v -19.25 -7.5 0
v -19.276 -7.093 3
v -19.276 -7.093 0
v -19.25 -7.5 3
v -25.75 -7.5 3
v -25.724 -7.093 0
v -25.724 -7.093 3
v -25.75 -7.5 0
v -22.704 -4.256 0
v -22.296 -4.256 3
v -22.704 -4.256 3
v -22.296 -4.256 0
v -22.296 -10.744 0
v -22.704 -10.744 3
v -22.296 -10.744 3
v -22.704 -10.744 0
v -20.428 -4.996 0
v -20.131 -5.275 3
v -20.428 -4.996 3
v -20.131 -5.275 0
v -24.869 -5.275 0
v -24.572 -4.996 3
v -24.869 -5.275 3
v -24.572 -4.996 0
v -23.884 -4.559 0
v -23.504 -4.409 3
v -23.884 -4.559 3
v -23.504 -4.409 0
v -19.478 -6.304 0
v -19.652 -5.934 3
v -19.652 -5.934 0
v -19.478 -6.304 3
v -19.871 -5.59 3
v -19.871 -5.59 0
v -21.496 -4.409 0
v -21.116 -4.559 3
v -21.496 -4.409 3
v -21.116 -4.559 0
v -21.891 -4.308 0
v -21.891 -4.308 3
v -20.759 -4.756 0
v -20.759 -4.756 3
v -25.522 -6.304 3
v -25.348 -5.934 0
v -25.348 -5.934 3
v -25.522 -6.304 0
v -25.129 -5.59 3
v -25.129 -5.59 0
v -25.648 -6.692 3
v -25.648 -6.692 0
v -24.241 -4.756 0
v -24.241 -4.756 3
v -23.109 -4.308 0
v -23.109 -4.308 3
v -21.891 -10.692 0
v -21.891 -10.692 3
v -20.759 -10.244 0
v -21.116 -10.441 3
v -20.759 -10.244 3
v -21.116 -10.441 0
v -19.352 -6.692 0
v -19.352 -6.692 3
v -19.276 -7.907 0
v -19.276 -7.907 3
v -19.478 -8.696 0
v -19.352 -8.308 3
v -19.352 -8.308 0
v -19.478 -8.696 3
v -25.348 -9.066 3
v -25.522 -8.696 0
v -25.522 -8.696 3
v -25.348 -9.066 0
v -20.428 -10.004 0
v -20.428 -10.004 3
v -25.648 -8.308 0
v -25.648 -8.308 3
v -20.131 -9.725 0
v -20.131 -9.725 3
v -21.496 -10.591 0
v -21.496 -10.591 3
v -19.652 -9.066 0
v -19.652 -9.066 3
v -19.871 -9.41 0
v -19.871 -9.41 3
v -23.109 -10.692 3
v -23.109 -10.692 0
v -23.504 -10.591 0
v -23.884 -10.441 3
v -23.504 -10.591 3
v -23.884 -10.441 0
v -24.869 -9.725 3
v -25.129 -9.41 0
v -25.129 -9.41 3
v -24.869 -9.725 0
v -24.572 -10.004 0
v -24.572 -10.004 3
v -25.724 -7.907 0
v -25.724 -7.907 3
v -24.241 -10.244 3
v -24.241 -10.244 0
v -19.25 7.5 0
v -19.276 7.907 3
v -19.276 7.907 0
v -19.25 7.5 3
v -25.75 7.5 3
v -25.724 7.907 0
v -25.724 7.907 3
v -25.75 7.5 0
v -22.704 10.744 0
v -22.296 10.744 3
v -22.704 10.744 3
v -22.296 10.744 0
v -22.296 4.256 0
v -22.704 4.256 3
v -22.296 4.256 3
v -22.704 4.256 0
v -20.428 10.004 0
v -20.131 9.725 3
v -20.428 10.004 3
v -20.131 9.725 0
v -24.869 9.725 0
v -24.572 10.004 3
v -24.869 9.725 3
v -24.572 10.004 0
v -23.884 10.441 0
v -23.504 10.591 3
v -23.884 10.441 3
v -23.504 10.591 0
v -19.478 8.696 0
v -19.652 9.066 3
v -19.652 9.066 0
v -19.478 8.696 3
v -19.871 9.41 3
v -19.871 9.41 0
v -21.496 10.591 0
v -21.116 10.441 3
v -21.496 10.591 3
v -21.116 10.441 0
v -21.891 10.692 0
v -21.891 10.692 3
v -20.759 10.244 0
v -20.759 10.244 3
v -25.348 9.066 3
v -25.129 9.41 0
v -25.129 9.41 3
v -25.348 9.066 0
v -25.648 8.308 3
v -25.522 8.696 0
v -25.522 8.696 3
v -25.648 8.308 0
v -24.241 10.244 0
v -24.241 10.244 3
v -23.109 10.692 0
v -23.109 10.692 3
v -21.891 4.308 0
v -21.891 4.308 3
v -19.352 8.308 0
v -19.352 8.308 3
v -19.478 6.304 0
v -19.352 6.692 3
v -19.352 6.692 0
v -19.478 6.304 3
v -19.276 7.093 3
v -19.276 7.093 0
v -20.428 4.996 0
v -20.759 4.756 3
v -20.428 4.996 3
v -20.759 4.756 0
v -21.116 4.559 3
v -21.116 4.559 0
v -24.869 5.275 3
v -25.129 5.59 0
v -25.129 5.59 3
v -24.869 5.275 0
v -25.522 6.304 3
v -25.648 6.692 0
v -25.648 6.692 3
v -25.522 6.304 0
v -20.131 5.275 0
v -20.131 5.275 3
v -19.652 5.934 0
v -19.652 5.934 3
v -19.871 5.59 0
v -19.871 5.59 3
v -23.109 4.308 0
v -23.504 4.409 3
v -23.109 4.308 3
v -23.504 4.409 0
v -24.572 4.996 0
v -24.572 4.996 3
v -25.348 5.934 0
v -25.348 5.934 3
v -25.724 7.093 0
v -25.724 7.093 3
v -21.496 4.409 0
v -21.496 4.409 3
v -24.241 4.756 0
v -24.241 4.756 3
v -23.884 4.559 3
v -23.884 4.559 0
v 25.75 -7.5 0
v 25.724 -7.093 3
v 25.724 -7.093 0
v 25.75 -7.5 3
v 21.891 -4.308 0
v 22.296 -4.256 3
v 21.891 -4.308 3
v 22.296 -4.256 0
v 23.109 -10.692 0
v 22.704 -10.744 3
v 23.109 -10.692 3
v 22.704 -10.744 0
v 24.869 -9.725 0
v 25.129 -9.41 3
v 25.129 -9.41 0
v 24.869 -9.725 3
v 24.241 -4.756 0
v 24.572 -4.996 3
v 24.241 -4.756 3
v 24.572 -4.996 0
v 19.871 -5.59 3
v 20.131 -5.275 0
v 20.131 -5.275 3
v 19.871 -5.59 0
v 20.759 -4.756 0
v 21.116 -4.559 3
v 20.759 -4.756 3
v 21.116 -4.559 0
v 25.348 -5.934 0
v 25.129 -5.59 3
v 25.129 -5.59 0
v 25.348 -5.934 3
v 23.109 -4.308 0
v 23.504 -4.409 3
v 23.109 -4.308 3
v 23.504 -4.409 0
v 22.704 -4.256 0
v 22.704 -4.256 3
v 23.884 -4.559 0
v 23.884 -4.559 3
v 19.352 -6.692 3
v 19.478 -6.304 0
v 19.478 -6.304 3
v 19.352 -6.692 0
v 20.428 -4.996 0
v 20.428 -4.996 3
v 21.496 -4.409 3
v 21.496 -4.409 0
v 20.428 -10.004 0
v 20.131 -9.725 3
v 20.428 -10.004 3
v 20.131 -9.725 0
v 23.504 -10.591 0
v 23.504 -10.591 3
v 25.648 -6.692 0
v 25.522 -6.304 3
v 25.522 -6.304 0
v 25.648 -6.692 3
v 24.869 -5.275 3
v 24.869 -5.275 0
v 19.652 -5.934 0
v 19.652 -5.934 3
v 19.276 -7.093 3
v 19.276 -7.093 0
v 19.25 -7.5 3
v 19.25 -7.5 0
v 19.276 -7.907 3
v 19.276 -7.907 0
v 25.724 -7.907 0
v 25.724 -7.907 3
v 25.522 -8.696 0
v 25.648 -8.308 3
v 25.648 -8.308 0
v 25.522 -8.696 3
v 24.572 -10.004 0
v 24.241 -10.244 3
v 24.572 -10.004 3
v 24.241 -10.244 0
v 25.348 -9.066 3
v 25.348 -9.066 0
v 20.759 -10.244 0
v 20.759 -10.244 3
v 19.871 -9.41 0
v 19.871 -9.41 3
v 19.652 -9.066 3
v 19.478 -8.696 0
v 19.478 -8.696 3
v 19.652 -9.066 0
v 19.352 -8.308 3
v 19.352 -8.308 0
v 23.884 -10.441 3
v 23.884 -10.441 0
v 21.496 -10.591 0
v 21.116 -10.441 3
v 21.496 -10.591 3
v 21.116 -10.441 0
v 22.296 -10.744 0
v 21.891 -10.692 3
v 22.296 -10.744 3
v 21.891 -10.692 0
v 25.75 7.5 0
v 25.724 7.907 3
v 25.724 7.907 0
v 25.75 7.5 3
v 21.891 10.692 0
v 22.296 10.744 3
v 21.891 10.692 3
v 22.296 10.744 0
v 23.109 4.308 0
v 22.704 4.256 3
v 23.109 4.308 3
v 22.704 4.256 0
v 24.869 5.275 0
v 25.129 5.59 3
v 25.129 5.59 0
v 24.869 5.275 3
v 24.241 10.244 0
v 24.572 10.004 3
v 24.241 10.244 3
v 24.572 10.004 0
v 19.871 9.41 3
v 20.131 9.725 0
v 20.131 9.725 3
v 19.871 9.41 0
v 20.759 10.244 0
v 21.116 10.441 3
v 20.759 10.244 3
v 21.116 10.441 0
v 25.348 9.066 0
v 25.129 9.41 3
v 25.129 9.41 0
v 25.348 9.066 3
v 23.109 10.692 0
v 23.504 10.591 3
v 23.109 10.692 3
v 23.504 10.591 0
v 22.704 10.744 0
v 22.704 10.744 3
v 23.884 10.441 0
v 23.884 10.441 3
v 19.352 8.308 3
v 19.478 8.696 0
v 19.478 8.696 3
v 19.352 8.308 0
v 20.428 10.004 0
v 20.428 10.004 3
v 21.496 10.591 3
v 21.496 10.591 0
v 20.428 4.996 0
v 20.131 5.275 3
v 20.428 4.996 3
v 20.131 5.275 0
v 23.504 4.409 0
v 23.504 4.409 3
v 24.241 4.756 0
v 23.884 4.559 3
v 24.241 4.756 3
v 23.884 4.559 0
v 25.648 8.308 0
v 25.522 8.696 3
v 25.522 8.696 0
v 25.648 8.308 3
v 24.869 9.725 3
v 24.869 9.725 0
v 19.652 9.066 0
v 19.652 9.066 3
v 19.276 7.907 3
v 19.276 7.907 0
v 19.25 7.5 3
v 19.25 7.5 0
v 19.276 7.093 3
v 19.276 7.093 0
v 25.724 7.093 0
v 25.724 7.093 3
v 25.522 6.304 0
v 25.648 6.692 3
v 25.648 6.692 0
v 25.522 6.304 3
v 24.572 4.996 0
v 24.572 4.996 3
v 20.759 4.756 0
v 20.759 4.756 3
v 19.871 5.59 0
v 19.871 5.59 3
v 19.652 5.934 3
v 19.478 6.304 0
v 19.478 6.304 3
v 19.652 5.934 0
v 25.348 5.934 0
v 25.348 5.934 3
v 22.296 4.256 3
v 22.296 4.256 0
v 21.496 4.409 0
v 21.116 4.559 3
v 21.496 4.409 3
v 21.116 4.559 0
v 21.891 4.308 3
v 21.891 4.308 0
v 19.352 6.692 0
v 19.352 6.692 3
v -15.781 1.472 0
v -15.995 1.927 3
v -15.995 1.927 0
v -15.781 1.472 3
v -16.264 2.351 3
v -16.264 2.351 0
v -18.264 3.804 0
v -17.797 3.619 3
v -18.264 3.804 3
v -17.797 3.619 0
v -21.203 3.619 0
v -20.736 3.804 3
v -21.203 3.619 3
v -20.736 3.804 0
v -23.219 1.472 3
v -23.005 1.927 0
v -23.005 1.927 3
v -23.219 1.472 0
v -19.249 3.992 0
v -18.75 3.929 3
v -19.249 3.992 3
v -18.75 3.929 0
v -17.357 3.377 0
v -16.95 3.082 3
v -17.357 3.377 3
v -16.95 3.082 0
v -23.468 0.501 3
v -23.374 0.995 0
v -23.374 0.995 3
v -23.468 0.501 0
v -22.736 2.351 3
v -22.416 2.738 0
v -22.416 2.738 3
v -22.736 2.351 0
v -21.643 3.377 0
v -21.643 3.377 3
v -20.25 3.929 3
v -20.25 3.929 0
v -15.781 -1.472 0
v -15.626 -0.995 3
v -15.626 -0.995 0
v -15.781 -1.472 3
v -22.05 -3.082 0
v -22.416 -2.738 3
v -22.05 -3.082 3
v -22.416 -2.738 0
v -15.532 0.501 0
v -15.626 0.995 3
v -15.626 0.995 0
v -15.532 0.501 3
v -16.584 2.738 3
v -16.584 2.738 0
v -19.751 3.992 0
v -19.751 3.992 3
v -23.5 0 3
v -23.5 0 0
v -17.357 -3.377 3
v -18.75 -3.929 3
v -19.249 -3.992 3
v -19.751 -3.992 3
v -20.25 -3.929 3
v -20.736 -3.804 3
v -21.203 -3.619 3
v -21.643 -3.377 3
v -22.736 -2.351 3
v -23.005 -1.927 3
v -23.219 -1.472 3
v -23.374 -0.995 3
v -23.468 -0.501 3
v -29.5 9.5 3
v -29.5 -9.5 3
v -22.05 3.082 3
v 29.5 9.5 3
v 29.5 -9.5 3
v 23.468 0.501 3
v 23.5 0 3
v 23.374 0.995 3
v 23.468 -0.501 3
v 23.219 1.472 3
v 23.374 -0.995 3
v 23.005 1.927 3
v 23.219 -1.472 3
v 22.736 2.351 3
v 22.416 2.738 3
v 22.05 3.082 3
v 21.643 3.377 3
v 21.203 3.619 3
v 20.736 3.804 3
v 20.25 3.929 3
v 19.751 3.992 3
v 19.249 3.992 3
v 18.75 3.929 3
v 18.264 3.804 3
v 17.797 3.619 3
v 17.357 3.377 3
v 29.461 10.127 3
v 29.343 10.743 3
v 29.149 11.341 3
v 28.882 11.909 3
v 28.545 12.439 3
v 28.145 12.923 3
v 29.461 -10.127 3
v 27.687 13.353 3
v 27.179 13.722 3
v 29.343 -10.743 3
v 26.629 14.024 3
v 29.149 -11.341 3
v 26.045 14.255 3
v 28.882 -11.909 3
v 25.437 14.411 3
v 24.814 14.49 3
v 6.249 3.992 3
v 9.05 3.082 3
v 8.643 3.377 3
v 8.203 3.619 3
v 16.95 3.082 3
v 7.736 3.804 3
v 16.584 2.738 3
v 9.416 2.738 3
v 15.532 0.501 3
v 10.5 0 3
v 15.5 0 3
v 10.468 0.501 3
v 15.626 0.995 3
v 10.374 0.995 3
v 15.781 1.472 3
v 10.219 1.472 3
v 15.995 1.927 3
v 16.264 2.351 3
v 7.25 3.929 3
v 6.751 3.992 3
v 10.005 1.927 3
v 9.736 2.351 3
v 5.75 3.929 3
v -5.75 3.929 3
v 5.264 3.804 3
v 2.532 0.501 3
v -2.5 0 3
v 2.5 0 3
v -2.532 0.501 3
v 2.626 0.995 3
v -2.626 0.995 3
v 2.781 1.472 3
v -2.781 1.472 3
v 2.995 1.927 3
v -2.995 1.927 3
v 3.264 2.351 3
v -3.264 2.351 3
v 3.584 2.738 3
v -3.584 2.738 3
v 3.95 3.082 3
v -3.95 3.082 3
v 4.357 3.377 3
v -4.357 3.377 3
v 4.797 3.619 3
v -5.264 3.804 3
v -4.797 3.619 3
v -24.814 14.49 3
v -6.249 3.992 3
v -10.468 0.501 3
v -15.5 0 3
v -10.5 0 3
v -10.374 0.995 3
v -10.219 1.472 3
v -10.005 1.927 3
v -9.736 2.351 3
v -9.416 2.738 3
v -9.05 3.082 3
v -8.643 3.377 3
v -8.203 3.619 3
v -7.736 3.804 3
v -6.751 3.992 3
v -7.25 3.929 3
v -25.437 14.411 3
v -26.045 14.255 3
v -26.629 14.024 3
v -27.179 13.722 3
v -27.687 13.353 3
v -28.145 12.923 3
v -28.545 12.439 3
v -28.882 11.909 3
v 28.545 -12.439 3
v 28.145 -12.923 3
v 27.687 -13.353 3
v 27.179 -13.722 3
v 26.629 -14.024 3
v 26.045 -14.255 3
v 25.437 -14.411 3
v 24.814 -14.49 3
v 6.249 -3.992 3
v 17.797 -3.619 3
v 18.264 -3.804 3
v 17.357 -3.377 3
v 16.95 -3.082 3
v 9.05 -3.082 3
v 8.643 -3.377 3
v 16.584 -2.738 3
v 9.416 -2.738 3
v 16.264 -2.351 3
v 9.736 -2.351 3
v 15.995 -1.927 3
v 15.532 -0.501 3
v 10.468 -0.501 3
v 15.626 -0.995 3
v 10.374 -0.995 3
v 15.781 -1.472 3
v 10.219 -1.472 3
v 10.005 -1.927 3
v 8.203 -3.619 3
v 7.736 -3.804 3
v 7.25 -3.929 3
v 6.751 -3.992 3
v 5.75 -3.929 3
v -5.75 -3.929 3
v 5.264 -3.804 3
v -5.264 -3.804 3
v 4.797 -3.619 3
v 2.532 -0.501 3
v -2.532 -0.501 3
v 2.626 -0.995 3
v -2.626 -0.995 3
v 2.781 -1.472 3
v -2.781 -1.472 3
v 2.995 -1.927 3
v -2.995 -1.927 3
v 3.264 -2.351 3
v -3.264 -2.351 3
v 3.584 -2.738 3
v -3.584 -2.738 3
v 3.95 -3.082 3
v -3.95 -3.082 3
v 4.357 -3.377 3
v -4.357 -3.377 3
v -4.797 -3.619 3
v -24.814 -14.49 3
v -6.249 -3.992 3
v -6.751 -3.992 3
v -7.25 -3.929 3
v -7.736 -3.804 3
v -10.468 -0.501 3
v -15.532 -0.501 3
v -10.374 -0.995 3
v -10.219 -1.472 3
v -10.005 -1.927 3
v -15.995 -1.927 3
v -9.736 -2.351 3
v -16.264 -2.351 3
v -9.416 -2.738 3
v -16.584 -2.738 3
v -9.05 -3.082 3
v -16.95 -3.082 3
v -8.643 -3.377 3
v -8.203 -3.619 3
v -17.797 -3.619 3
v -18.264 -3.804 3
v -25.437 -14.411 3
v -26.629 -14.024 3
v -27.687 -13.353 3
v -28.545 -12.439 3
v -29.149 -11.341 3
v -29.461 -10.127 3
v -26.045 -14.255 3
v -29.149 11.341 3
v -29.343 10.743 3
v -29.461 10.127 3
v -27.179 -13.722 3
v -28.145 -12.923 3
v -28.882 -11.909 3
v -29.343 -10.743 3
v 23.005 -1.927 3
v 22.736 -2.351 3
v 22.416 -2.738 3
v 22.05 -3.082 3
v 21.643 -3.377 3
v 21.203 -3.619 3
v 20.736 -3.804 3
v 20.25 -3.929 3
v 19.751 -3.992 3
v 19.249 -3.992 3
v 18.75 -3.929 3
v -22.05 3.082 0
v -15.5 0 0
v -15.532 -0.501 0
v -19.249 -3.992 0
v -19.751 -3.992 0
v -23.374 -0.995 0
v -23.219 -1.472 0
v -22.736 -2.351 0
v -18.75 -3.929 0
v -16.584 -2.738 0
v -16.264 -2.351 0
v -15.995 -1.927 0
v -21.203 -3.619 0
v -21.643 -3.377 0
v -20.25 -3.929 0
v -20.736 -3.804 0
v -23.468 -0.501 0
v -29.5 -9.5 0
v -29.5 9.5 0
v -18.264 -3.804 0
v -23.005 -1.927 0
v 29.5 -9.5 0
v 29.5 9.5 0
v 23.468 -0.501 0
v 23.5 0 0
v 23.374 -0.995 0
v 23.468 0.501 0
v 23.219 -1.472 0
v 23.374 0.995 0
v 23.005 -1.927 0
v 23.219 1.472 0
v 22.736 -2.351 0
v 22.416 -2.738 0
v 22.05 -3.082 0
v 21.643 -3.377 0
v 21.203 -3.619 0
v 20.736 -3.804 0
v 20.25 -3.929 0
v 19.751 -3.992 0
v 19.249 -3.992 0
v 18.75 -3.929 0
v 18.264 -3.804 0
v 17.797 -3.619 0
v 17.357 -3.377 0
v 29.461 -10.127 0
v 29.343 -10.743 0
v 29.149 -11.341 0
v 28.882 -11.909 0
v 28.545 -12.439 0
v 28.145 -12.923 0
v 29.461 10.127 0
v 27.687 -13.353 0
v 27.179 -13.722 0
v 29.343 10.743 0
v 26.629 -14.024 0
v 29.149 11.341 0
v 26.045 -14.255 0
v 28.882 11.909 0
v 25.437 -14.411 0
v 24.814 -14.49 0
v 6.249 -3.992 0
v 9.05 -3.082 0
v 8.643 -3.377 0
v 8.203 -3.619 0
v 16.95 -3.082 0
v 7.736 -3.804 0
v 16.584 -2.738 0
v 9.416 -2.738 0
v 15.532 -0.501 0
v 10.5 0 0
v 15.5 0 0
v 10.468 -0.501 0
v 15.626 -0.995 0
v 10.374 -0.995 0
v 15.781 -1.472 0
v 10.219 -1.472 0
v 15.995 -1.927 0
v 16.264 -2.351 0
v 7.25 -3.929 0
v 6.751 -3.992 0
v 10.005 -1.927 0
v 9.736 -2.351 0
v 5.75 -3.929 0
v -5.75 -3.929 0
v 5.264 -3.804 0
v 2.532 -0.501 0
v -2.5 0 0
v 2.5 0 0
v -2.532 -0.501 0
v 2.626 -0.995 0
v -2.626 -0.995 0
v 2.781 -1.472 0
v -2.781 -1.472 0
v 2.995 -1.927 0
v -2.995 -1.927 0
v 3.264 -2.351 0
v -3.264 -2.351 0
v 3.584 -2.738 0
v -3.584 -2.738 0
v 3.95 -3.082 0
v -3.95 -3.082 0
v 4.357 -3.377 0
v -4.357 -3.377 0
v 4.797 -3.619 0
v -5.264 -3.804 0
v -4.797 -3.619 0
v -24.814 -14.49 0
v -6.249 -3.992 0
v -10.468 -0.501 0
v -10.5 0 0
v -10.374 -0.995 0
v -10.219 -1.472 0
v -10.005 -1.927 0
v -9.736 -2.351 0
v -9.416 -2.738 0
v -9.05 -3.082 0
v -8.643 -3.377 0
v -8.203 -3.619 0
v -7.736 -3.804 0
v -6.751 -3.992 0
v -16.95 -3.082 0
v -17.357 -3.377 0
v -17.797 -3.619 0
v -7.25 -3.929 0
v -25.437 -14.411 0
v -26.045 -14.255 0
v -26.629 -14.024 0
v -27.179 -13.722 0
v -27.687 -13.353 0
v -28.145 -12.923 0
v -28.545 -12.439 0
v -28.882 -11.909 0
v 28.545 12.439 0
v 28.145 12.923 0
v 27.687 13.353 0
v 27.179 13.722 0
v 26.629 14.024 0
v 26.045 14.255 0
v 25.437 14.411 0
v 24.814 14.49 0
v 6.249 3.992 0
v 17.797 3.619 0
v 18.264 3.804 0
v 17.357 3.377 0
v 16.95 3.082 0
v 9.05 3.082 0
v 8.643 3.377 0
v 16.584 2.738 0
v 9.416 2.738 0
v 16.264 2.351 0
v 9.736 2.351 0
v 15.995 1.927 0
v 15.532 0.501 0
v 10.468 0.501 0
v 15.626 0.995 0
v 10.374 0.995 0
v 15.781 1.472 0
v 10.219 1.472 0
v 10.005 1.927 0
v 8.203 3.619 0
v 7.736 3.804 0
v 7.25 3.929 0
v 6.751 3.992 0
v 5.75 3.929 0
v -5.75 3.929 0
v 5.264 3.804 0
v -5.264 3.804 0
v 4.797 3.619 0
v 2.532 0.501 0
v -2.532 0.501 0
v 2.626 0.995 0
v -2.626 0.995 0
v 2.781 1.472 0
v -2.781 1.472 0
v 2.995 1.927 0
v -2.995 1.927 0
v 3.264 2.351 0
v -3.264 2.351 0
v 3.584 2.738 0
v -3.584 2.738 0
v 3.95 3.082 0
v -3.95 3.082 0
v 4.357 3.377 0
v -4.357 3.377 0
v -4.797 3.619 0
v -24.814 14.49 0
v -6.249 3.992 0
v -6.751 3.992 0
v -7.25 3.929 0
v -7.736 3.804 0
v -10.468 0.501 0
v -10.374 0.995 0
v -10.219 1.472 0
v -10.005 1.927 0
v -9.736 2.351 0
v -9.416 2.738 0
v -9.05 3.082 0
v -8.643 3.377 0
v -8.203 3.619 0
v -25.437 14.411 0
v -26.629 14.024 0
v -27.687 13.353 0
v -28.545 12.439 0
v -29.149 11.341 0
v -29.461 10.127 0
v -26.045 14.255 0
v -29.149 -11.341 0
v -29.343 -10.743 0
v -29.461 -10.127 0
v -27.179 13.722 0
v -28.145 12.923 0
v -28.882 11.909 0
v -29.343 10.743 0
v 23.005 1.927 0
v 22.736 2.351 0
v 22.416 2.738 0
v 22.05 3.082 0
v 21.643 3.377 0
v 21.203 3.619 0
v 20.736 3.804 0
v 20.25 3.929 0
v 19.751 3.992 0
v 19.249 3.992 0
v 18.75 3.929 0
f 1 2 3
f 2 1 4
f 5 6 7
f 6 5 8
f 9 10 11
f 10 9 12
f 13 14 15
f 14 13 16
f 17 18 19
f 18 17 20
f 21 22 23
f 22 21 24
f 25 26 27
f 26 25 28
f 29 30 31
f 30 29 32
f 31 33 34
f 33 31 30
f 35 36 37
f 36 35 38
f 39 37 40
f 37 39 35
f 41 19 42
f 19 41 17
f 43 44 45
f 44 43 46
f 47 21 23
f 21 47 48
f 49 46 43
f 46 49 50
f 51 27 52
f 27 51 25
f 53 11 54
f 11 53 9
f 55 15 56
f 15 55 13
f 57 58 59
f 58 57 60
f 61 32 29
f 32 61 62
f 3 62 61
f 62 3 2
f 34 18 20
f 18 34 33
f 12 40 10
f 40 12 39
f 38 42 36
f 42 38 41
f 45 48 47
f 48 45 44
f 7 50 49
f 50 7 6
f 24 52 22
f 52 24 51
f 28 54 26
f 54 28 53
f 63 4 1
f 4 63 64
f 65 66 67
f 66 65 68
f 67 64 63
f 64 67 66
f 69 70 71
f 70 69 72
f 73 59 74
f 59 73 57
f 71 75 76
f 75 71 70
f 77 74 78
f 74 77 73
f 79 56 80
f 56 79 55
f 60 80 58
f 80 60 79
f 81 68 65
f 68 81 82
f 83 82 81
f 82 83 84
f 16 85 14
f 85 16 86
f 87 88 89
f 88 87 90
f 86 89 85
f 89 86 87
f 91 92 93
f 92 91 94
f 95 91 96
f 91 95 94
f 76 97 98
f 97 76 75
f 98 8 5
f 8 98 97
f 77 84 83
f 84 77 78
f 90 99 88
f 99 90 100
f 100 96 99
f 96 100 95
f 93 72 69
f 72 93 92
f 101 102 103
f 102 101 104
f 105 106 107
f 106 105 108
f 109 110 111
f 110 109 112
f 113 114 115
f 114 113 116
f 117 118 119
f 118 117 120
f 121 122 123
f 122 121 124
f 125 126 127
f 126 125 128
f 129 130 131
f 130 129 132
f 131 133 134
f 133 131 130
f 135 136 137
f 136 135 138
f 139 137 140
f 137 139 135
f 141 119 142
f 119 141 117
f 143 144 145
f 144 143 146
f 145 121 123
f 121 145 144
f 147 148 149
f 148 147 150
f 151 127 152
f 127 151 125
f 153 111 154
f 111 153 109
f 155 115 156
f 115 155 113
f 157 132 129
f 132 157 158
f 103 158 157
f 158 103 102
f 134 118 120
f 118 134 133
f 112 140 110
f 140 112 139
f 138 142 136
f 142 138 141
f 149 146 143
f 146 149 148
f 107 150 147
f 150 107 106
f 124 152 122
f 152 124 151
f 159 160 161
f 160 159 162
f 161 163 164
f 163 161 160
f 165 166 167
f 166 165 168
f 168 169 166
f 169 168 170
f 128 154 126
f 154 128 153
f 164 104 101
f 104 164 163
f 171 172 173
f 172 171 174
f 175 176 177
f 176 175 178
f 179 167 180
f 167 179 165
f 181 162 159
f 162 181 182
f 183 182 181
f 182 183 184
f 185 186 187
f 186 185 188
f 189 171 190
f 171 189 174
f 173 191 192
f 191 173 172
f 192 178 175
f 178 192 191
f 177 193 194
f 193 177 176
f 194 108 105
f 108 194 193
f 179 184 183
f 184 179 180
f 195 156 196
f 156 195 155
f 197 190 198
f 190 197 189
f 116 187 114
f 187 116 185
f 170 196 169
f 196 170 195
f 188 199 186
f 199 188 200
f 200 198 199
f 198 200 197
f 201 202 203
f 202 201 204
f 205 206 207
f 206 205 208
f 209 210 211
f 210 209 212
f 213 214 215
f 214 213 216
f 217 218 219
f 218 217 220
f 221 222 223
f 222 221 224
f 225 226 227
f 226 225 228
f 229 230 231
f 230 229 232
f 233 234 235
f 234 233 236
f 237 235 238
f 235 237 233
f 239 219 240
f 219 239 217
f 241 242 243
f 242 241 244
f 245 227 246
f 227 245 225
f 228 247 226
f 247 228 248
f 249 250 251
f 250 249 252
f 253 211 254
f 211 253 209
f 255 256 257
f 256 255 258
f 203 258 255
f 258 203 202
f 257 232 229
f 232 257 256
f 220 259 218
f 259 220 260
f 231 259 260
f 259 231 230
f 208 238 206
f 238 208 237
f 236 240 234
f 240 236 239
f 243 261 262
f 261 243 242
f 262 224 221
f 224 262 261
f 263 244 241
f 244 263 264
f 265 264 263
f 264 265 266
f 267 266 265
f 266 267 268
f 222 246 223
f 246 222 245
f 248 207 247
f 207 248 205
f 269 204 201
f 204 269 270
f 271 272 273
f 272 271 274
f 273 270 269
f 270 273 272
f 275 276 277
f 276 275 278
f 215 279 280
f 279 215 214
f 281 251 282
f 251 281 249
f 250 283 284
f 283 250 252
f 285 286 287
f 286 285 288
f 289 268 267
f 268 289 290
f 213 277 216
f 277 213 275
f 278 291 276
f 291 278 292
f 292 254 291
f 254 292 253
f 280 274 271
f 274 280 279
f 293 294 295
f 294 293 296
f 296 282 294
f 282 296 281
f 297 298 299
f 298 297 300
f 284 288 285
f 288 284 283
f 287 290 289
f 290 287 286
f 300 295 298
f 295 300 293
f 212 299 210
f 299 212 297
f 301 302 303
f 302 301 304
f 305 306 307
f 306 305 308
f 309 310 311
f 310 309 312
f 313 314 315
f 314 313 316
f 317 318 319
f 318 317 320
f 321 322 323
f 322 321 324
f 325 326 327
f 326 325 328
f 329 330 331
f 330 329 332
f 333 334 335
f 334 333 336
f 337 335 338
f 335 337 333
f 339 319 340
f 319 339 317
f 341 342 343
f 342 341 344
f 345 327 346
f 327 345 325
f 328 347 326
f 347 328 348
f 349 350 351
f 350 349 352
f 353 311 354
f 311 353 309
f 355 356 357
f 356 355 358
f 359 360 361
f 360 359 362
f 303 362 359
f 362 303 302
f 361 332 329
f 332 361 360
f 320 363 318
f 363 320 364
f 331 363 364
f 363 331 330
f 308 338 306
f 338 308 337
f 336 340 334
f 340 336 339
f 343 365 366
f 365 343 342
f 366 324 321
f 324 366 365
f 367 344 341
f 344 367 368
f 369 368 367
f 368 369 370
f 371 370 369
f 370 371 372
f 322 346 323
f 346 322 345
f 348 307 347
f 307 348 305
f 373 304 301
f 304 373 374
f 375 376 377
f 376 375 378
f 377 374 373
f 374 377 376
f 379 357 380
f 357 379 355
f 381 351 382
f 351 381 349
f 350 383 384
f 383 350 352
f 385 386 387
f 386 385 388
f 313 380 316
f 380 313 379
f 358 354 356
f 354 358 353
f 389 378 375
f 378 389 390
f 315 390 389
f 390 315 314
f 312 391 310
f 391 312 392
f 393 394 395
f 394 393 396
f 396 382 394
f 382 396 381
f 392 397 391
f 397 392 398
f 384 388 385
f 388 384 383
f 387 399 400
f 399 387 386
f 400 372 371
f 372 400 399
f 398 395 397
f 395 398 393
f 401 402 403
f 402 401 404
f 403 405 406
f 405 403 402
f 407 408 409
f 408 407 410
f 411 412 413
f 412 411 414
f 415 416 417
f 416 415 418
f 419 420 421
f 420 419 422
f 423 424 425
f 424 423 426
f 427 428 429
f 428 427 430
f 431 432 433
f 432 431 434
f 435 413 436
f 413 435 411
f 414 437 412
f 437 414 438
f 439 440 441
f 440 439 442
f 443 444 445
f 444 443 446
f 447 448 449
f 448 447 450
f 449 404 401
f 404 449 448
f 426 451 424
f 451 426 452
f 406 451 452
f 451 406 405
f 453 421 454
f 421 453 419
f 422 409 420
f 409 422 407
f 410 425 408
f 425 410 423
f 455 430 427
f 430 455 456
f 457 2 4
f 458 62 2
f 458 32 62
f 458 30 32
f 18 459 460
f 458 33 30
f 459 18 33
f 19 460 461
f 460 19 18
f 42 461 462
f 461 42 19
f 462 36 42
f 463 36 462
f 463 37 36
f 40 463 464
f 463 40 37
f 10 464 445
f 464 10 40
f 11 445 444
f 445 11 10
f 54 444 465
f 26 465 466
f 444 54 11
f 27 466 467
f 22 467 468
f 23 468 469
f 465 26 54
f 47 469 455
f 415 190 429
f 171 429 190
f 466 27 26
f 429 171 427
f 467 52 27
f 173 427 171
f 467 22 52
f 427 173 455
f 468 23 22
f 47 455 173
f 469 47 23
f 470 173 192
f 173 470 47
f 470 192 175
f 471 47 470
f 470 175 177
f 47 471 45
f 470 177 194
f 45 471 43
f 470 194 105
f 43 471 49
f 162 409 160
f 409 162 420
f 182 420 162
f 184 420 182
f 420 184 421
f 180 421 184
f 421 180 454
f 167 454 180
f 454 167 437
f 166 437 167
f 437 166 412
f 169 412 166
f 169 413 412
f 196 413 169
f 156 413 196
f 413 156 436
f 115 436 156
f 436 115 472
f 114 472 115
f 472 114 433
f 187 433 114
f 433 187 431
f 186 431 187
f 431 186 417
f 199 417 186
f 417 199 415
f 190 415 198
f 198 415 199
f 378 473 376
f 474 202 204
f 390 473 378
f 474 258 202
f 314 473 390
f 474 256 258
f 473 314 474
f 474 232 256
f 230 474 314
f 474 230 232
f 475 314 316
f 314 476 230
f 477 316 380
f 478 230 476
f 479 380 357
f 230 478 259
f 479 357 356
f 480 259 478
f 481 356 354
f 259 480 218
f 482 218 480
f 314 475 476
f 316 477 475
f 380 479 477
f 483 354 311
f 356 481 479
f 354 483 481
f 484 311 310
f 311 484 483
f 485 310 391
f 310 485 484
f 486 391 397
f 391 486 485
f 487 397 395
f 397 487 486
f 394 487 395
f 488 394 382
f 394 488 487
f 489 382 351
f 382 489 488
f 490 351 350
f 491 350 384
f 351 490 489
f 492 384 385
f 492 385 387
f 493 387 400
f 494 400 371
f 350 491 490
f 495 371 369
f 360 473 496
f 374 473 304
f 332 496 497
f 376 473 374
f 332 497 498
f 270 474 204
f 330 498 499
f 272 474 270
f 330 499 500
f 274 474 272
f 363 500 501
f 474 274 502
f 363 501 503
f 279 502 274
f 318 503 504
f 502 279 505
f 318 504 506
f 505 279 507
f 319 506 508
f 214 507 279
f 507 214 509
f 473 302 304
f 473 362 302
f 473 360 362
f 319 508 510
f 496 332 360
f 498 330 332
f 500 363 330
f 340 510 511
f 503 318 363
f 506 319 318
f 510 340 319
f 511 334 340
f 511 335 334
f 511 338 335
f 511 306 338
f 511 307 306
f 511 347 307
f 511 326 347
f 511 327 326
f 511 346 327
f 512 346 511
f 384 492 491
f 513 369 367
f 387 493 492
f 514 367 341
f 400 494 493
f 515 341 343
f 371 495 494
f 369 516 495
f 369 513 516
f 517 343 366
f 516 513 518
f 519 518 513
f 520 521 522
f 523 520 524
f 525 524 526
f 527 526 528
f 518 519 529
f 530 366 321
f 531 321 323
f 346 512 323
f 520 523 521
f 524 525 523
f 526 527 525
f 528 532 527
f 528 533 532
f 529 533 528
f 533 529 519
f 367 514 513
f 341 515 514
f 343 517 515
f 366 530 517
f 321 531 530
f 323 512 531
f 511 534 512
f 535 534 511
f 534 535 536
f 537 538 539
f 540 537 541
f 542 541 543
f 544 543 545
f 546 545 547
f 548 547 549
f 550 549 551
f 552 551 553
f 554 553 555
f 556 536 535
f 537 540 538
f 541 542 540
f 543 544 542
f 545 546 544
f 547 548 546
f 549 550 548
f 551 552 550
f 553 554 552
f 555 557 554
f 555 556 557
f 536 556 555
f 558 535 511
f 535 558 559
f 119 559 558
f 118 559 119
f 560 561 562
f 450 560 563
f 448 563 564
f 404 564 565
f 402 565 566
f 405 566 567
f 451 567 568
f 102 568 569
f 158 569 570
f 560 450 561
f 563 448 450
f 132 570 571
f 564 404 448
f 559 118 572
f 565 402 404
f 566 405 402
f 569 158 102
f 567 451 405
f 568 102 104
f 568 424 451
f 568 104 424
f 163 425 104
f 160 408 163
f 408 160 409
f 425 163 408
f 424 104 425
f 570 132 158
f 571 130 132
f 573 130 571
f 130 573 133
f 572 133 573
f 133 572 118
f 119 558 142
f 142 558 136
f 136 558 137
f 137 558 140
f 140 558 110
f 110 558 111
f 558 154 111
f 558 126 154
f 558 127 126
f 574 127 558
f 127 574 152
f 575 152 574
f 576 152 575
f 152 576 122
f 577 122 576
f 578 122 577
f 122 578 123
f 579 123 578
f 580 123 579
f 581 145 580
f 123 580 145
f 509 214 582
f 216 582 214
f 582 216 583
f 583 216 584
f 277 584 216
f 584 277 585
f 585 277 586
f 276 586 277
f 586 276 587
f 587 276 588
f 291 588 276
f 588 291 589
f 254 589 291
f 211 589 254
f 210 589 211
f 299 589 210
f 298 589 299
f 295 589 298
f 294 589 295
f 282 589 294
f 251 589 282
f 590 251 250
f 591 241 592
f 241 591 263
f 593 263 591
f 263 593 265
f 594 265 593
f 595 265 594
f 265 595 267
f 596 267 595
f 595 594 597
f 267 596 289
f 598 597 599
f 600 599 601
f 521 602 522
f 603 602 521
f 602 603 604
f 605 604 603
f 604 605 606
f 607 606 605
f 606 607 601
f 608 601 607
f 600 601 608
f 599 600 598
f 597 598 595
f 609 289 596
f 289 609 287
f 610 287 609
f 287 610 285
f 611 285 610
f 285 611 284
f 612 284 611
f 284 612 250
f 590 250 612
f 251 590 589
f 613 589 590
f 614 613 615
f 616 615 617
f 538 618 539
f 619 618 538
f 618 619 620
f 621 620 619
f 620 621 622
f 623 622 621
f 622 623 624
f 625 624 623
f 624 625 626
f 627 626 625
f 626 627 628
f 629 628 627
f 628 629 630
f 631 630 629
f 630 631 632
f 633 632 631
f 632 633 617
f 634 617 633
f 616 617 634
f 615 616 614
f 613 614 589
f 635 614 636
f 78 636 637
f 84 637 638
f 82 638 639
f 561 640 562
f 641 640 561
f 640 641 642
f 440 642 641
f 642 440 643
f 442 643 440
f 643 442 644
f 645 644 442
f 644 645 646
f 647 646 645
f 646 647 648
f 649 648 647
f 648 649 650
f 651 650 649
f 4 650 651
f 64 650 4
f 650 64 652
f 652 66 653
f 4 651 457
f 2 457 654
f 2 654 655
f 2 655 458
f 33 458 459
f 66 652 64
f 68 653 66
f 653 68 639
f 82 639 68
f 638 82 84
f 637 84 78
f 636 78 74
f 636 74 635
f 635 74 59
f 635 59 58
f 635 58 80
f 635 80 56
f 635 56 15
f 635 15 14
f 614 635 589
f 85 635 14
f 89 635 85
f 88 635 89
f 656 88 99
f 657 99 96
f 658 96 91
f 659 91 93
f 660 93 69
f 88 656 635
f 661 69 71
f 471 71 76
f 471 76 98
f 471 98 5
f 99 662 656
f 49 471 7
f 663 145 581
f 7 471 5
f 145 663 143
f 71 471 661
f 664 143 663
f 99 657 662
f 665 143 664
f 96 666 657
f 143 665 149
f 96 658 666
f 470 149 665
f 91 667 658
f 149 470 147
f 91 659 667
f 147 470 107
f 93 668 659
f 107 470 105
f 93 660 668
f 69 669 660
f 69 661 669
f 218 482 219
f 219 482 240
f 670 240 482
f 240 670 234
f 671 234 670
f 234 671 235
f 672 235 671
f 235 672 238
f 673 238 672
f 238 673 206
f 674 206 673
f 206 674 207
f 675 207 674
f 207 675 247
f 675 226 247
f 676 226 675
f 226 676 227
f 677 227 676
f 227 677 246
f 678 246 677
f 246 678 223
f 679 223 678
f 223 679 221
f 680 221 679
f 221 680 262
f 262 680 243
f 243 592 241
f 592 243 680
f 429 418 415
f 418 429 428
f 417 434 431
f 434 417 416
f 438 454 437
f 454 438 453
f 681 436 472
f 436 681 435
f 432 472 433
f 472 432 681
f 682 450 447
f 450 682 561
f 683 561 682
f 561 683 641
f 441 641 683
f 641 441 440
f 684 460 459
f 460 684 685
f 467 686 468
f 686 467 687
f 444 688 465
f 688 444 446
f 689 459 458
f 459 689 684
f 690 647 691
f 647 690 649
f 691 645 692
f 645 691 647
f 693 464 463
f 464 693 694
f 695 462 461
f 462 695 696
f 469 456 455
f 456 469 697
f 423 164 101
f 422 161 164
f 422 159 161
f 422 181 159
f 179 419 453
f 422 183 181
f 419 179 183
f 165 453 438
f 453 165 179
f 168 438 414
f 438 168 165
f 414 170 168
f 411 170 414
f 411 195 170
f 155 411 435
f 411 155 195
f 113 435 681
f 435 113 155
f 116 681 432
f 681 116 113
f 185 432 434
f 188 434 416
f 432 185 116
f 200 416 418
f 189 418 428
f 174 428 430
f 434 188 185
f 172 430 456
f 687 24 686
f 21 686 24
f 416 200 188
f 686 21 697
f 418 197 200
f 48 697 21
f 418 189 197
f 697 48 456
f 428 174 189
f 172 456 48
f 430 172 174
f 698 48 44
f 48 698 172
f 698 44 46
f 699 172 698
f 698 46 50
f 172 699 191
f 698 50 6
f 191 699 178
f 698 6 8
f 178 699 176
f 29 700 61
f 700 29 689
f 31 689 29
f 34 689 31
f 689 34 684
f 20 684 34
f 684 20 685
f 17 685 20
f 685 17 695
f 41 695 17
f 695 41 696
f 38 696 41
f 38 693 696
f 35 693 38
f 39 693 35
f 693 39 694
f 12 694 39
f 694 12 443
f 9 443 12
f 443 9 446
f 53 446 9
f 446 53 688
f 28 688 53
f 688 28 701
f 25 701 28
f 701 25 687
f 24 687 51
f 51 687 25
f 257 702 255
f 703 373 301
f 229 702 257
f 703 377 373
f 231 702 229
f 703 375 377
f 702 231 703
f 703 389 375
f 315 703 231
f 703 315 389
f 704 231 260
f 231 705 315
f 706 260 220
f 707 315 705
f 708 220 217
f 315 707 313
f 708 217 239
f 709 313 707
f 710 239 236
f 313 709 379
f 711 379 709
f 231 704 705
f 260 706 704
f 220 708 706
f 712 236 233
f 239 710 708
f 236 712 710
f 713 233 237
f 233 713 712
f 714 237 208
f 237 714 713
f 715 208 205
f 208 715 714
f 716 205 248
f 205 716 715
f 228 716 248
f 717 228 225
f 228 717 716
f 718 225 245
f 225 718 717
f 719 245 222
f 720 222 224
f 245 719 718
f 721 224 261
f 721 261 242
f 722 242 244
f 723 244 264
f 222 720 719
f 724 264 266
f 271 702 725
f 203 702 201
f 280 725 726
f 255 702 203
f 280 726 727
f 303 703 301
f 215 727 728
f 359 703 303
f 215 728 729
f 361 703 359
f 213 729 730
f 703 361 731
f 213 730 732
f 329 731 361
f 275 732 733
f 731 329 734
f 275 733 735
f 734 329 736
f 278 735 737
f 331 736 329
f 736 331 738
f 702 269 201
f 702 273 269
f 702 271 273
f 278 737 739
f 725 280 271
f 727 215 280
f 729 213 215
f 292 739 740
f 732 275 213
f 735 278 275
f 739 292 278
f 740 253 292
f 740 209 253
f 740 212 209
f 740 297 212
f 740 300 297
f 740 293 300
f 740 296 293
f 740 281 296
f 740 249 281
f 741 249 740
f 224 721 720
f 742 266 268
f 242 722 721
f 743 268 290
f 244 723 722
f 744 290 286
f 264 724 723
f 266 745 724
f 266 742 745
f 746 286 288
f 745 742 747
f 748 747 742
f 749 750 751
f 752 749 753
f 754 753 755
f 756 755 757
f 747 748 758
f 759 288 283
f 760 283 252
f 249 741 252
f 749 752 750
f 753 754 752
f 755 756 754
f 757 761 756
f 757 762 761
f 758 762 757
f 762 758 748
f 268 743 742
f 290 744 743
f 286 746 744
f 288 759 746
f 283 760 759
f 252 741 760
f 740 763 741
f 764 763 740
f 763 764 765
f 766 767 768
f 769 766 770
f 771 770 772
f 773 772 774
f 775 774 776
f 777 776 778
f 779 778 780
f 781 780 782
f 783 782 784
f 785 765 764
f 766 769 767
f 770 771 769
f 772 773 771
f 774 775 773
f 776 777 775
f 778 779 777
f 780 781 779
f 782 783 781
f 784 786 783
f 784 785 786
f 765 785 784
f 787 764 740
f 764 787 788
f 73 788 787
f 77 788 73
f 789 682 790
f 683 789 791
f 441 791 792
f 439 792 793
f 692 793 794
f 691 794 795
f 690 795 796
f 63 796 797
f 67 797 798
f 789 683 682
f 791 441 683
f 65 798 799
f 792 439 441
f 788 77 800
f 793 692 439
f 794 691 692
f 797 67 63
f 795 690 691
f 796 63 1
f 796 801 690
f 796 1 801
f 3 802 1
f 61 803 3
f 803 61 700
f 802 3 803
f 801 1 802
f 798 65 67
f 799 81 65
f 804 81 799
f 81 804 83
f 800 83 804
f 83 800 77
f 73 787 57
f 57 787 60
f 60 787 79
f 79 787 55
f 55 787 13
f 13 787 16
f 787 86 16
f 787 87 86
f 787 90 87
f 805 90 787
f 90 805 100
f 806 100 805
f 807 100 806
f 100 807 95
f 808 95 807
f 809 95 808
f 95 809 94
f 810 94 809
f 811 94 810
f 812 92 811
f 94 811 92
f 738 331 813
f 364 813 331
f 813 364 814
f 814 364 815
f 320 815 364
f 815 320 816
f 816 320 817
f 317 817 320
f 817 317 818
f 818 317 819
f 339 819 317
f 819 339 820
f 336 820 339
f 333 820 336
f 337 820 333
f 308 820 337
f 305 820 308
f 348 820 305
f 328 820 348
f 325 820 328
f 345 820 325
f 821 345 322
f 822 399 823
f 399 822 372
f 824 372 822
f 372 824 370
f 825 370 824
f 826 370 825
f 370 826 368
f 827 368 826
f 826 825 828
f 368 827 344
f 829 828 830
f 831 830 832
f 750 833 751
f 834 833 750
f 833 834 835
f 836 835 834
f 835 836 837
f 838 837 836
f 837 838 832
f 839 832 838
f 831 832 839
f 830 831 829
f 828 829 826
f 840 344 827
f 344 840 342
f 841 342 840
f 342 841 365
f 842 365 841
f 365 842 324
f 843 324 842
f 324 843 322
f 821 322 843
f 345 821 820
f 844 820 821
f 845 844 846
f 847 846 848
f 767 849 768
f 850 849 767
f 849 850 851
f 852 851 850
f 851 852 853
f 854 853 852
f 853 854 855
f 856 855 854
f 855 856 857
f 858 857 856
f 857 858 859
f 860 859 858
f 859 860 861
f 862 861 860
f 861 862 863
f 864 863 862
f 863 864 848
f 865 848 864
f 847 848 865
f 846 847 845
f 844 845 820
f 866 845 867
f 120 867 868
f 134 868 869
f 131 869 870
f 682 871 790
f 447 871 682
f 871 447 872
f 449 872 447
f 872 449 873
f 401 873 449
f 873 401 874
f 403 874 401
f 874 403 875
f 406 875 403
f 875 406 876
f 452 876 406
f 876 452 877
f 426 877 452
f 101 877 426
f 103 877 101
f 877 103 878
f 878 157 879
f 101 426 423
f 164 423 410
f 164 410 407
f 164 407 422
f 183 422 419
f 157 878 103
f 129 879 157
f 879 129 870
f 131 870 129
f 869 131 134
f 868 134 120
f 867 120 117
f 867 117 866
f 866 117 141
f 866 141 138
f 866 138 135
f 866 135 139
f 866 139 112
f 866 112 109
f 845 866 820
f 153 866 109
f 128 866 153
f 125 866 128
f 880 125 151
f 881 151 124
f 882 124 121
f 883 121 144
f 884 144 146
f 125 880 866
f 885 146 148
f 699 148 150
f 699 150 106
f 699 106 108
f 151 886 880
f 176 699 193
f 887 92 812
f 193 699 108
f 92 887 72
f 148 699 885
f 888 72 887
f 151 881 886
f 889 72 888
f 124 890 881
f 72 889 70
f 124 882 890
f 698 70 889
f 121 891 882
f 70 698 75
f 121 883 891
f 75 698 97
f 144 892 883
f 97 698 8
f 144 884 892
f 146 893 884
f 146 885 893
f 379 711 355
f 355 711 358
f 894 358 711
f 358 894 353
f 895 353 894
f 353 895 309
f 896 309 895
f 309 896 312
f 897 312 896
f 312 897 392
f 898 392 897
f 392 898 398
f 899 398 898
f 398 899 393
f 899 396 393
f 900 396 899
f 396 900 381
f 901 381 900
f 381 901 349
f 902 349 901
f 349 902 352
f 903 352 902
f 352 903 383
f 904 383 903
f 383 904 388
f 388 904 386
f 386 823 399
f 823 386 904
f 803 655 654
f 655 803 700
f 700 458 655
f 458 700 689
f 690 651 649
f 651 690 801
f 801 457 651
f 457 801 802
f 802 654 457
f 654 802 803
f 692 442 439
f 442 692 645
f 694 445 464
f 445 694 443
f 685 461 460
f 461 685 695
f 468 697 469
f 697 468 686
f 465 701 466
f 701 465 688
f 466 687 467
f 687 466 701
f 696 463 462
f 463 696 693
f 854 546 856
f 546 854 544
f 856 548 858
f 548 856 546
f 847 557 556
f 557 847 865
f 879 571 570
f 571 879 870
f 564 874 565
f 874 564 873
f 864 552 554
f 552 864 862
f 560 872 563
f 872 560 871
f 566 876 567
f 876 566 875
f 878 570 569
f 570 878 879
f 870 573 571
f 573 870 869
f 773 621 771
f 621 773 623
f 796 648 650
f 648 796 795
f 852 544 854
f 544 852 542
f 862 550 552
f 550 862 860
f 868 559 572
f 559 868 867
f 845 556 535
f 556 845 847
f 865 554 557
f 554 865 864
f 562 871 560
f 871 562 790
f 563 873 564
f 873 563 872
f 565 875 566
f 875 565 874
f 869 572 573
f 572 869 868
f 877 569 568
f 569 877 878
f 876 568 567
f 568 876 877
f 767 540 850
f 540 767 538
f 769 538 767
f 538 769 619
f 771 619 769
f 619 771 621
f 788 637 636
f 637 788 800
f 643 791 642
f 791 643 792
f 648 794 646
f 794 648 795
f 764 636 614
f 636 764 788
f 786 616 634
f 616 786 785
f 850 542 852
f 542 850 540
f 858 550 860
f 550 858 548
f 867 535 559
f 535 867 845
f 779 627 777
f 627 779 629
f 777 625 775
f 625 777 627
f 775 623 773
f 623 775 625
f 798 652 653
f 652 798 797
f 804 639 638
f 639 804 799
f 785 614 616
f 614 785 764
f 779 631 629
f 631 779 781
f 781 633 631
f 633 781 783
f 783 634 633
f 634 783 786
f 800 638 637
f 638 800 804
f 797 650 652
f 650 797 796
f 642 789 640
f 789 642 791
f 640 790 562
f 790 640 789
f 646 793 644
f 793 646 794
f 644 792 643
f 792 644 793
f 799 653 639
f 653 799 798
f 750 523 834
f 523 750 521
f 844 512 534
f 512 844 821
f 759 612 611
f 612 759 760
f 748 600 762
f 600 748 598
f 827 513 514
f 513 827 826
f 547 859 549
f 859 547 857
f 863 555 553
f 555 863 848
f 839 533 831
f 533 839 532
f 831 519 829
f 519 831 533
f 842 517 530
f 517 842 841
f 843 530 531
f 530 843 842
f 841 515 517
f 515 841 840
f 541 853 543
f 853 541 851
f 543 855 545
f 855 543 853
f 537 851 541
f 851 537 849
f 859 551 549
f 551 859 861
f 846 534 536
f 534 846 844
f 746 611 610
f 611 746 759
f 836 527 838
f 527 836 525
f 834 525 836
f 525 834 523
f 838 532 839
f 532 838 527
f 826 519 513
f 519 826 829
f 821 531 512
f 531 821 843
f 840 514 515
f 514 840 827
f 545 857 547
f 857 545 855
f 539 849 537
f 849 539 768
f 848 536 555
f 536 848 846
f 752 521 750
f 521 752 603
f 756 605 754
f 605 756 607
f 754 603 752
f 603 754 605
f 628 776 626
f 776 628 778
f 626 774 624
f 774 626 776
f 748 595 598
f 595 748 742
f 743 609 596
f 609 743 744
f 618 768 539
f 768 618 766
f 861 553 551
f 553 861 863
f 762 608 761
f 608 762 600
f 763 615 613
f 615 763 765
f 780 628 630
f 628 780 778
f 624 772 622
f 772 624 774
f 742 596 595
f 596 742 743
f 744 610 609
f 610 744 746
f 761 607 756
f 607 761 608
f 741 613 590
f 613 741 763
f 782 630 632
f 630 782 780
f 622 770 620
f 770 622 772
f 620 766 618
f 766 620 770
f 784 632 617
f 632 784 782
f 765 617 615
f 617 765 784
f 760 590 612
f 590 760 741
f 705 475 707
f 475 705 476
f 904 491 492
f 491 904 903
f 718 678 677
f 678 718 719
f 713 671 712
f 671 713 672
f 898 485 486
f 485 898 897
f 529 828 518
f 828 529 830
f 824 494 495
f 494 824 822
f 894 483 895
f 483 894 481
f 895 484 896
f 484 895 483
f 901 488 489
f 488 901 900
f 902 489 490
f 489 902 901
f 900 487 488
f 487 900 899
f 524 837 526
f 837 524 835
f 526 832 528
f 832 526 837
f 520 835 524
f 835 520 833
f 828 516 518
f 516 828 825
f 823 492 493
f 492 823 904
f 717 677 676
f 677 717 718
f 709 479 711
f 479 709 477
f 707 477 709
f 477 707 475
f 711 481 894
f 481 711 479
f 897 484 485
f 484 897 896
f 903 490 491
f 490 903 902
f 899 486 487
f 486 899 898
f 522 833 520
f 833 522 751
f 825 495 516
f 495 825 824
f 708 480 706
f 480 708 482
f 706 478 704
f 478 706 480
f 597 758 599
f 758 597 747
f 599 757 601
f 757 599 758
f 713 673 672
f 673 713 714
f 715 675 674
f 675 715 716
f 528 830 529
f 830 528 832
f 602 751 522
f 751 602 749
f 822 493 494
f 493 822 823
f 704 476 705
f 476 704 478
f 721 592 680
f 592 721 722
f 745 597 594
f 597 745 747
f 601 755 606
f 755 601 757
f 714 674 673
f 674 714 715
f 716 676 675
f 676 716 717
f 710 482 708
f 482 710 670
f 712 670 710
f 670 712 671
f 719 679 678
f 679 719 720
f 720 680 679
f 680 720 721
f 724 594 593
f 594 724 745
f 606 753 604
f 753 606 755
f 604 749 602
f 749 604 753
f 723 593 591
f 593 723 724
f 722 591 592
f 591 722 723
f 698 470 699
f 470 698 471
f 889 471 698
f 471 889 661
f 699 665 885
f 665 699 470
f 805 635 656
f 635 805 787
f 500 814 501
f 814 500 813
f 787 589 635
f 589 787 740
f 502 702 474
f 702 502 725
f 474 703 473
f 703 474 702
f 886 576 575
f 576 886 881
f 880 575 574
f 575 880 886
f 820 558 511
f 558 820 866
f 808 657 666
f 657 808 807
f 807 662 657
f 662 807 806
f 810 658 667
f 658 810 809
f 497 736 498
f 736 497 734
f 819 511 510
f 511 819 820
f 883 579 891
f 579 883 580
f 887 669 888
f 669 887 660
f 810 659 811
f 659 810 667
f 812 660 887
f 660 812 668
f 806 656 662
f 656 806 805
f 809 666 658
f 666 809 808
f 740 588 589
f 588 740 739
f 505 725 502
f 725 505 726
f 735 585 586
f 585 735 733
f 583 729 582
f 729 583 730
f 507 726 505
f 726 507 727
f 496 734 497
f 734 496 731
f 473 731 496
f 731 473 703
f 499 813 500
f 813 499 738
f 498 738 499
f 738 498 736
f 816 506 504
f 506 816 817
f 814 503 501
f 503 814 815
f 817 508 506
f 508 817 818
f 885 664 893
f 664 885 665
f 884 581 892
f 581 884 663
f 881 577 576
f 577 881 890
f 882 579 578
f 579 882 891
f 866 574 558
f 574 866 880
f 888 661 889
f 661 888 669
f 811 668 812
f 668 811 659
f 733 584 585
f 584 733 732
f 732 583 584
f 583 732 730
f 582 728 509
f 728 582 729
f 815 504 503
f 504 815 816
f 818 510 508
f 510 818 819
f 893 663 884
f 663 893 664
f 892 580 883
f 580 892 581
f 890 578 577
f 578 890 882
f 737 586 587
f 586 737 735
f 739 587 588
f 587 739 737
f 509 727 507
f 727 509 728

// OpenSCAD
$fn = 50;


difference() {
	union() {
		hull() {
			translate(v = [-24.5000000000, 9.5000000000, 0]) {
				cylinder(h = 3, r = 5);
			}
			translate(v = [24.5000000000, 9.5000000000, 0]) {
				cylinder(h = 3, r = 5);
			}
			translate(v = [-24.5000000000, -9.5000000000, 0]) {
				cylinder(h = 3, r = 5);
			}
			translate(v = [24.5000000000, -9.5000000000, 0]) {
				cylinder(h = 3, r = 5);
			}
		}
	}
	union() {
		#translate(v = [-22.5000000000, -7.5000000000, -100.0000000000]) {
			cylinder(h = 200, r = 3.2500000000);
		}
		#translate(v = [-22.5000000000, 7.5000000000, -100.0000000000]) {
			cylinder(h = 200, r = 3.2500000000);
		}
		#translate(v = [22.5000000000, -7.5000000000, -100.0000000000]) {
			cylinder(h = 200, r = 3.2500000000);
		}
		#translate(v = [22.5000000000, 7.5000000000, -100.0000000000]) {
			cylinder(h = 200, r = 3.2500000000);
		}
		#translate(v = [-19.5000000000, 0, 0]) {
			cylinder(h = 3, r = 4.0000000000);
		}
		#translate(v = [-6.5000000000, 0, 0]) {
			cylinder(h = 3, r = 4.0000000000);
		}
		#translate(v = [6.5000000000, 0, 0]) {
			cylinder(h = 3, r = 4.0000000000);
		}
		#translate(v = [19.5000000000, 0, 0]) {
			cylinder(h = 3, r = 4.0000000000);
		}
	}
}
